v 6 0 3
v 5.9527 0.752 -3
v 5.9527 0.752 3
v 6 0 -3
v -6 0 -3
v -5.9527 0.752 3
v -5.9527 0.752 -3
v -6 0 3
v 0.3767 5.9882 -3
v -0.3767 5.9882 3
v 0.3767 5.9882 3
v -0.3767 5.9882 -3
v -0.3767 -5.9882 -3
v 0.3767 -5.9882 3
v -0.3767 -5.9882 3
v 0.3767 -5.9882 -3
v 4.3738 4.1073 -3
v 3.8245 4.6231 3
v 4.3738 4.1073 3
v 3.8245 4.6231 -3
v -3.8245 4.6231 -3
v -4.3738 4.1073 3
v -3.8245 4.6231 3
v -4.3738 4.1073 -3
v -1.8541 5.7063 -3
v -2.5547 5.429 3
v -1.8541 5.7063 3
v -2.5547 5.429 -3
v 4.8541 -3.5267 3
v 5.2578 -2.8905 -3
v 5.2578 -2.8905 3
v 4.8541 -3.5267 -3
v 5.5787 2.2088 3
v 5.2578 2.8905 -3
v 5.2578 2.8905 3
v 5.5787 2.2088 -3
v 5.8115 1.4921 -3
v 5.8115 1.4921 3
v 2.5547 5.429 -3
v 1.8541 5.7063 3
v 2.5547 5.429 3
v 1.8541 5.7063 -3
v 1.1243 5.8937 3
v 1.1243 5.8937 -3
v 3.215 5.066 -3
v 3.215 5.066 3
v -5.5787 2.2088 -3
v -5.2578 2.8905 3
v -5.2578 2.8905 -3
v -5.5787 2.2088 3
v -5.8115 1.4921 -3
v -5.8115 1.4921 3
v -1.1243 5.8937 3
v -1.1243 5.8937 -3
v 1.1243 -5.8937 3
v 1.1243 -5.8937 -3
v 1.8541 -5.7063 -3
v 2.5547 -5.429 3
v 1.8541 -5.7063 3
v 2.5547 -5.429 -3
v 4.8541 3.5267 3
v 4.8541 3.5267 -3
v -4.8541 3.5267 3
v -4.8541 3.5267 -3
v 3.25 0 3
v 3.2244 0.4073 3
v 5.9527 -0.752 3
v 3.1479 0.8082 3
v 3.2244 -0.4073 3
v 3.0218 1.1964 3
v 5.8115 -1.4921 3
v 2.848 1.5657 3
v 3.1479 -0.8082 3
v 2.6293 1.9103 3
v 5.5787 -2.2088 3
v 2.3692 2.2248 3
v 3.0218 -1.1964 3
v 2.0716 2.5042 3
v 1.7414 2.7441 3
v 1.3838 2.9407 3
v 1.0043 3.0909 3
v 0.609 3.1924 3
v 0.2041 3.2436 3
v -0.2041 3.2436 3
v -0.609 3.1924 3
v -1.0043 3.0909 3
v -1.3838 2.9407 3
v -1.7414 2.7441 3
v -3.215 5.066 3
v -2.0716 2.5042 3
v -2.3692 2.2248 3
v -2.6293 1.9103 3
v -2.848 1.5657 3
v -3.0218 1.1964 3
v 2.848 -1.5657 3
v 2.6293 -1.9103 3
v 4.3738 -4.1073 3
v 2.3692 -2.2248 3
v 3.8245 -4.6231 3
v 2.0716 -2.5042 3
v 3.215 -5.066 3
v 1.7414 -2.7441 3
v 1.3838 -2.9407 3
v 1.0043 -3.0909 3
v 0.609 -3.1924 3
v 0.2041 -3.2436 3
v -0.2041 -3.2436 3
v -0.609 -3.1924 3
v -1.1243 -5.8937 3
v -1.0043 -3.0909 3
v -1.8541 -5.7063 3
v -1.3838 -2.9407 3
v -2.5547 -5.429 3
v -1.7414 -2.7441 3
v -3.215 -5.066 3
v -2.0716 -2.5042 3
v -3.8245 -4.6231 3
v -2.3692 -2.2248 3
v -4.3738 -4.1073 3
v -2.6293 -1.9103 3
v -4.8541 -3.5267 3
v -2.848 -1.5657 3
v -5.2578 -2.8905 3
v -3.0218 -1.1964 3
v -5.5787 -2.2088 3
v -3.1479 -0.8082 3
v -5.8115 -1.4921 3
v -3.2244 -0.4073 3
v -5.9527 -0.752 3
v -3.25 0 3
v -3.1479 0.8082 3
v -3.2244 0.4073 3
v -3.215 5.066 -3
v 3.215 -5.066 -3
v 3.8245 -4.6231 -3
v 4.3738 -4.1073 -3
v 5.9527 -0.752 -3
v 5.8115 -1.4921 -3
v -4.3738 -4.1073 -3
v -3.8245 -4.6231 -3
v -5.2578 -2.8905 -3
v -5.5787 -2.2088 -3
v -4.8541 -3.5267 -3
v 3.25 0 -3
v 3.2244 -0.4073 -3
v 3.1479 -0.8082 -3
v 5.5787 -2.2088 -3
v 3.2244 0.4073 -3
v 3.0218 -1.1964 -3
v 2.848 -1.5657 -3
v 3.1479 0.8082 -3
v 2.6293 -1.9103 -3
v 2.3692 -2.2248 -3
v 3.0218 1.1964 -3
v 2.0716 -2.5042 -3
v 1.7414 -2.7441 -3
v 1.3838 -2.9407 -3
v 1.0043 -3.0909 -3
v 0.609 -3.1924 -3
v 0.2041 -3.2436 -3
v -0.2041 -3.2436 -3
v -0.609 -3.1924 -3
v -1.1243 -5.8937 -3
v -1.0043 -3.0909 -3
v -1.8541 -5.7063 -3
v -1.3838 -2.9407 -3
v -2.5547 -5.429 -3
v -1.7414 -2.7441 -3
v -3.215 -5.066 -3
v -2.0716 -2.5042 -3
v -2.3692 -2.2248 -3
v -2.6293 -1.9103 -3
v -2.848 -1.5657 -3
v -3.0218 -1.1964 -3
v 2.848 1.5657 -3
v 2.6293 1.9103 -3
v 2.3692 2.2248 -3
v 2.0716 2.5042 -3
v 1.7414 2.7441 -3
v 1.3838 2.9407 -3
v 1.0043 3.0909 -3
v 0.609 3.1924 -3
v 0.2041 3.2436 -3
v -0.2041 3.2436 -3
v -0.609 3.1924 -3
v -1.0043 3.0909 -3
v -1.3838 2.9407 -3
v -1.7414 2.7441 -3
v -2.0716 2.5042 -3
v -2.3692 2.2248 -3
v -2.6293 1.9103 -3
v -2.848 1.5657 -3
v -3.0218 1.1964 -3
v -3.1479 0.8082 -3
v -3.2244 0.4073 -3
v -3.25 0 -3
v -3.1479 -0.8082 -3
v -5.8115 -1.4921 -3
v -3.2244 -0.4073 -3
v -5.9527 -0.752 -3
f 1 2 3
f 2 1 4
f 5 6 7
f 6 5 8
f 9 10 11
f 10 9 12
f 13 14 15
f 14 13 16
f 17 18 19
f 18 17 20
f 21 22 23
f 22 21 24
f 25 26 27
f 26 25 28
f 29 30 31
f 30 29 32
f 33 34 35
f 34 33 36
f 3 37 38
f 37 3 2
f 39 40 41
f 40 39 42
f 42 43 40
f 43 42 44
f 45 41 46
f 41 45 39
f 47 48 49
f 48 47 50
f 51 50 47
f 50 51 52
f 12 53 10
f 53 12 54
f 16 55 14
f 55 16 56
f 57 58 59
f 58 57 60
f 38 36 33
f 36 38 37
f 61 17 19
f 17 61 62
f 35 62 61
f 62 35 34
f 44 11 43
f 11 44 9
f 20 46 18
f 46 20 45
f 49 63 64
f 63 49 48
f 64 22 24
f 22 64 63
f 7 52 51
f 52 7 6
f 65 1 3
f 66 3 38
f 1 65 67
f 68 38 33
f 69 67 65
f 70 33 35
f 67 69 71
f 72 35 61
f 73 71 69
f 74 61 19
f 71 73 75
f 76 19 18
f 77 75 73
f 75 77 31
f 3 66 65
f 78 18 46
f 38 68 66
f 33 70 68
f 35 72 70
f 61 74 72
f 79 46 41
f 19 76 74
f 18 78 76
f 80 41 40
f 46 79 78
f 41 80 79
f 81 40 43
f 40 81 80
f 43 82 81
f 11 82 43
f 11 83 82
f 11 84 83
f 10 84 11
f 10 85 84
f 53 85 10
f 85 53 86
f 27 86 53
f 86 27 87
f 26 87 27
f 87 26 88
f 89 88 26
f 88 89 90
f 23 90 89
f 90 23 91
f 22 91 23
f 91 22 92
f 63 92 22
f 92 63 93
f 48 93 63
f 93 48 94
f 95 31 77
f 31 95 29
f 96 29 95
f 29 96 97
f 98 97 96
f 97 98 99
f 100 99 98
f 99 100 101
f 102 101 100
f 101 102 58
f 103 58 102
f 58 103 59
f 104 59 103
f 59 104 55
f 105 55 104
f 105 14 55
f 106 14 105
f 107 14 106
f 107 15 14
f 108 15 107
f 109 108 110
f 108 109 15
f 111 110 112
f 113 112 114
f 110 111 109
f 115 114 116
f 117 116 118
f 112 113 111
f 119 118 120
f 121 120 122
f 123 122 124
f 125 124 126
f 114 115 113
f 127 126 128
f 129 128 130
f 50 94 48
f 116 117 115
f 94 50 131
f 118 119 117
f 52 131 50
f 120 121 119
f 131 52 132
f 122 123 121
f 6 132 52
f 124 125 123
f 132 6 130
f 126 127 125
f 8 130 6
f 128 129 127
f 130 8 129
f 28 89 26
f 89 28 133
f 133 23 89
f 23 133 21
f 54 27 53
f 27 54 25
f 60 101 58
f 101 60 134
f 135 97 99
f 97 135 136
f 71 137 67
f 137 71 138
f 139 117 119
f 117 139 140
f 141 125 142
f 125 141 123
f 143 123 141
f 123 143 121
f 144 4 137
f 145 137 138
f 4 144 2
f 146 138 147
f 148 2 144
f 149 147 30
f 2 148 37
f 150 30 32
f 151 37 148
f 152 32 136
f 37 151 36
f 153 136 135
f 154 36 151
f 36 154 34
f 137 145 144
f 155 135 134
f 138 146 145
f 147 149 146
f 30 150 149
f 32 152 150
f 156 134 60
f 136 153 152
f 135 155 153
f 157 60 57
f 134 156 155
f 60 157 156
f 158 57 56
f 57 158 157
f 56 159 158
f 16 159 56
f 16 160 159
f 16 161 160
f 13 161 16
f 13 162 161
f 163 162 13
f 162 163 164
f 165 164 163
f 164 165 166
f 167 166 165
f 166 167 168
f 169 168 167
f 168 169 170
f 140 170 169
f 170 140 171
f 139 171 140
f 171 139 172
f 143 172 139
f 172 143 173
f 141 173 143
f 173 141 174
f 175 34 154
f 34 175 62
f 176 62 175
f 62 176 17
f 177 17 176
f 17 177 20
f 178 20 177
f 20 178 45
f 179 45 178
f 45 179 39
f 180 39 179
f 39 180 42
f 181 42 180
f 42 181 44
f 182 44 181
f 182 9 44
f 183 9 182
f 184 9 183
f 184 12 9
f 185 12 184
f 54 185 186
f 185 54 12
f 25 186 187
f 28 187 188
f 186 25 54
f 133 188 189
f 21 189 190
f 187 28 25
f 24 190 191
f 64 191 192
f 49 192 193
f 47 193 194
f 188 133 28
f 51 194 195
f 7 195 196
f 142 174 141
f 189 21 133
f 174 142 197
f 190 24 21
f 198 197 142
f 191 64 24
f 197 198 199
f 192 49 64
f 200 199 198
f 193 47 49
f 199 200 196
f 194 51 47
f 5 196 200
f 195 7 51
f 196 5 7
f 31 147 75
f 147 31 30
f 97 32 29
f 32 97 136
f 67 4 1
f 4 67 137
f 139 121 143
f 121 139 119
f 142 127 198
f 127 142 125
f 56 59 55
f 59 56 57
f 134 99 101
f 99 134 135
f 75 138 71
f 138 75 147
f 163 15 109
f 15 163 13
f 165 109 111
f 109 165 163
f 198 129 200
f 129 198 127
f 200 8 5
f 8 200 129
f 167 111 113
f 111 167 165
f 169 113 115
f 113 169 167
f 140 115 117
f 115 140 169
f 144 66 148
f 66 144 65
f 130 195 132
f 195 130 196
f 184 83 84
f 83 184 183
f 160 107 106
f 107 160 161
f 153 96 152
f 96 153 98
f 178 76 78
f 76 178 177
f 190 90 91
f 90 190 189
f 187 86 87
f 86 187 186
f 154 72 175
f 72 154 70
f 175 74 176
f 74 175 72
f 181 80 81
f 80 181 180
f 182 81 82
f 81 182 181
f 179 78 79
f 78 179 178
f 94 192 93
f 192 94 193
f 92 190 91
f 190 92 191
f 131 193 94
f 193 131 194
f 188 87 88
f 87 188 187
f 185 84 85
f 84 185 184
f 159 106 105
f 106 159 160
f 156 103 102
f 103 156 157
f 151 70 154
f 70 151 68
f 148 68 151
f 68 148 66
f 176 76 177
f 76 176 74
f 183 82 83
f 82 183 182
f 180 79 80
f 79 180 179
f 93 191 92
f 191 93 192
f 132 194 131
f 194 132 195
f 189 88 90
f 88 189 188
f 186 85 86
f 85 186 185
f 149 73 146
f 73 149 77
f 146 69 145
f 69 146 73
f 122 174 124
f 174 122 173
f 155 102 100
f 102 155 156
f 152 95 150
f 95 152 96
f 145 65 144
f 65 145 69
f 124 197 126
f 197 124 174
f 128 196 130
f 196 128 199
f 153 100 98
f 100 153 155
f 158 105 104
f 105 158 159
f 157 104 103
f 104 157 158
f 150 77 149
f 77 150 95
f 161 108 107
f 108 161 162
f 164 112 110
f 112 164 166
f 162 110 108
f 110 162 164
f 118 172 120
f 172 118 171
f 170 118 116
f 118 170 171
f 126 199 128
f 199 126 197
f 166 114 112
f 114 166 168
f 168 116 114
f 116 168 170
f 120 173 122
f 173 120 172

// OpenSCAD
$fn = 50;


difference() {
	union() {
		translate(v = [0, 0, -3.0000000000]) {
			cylinder(h = 6, r = 6.0000000000);
		}
	}
	union() {
		translate(v = [0, 0, -100.0000000000]) {
			cylinder(h = 200, r = 3.2500000000);
		}
	}
}
